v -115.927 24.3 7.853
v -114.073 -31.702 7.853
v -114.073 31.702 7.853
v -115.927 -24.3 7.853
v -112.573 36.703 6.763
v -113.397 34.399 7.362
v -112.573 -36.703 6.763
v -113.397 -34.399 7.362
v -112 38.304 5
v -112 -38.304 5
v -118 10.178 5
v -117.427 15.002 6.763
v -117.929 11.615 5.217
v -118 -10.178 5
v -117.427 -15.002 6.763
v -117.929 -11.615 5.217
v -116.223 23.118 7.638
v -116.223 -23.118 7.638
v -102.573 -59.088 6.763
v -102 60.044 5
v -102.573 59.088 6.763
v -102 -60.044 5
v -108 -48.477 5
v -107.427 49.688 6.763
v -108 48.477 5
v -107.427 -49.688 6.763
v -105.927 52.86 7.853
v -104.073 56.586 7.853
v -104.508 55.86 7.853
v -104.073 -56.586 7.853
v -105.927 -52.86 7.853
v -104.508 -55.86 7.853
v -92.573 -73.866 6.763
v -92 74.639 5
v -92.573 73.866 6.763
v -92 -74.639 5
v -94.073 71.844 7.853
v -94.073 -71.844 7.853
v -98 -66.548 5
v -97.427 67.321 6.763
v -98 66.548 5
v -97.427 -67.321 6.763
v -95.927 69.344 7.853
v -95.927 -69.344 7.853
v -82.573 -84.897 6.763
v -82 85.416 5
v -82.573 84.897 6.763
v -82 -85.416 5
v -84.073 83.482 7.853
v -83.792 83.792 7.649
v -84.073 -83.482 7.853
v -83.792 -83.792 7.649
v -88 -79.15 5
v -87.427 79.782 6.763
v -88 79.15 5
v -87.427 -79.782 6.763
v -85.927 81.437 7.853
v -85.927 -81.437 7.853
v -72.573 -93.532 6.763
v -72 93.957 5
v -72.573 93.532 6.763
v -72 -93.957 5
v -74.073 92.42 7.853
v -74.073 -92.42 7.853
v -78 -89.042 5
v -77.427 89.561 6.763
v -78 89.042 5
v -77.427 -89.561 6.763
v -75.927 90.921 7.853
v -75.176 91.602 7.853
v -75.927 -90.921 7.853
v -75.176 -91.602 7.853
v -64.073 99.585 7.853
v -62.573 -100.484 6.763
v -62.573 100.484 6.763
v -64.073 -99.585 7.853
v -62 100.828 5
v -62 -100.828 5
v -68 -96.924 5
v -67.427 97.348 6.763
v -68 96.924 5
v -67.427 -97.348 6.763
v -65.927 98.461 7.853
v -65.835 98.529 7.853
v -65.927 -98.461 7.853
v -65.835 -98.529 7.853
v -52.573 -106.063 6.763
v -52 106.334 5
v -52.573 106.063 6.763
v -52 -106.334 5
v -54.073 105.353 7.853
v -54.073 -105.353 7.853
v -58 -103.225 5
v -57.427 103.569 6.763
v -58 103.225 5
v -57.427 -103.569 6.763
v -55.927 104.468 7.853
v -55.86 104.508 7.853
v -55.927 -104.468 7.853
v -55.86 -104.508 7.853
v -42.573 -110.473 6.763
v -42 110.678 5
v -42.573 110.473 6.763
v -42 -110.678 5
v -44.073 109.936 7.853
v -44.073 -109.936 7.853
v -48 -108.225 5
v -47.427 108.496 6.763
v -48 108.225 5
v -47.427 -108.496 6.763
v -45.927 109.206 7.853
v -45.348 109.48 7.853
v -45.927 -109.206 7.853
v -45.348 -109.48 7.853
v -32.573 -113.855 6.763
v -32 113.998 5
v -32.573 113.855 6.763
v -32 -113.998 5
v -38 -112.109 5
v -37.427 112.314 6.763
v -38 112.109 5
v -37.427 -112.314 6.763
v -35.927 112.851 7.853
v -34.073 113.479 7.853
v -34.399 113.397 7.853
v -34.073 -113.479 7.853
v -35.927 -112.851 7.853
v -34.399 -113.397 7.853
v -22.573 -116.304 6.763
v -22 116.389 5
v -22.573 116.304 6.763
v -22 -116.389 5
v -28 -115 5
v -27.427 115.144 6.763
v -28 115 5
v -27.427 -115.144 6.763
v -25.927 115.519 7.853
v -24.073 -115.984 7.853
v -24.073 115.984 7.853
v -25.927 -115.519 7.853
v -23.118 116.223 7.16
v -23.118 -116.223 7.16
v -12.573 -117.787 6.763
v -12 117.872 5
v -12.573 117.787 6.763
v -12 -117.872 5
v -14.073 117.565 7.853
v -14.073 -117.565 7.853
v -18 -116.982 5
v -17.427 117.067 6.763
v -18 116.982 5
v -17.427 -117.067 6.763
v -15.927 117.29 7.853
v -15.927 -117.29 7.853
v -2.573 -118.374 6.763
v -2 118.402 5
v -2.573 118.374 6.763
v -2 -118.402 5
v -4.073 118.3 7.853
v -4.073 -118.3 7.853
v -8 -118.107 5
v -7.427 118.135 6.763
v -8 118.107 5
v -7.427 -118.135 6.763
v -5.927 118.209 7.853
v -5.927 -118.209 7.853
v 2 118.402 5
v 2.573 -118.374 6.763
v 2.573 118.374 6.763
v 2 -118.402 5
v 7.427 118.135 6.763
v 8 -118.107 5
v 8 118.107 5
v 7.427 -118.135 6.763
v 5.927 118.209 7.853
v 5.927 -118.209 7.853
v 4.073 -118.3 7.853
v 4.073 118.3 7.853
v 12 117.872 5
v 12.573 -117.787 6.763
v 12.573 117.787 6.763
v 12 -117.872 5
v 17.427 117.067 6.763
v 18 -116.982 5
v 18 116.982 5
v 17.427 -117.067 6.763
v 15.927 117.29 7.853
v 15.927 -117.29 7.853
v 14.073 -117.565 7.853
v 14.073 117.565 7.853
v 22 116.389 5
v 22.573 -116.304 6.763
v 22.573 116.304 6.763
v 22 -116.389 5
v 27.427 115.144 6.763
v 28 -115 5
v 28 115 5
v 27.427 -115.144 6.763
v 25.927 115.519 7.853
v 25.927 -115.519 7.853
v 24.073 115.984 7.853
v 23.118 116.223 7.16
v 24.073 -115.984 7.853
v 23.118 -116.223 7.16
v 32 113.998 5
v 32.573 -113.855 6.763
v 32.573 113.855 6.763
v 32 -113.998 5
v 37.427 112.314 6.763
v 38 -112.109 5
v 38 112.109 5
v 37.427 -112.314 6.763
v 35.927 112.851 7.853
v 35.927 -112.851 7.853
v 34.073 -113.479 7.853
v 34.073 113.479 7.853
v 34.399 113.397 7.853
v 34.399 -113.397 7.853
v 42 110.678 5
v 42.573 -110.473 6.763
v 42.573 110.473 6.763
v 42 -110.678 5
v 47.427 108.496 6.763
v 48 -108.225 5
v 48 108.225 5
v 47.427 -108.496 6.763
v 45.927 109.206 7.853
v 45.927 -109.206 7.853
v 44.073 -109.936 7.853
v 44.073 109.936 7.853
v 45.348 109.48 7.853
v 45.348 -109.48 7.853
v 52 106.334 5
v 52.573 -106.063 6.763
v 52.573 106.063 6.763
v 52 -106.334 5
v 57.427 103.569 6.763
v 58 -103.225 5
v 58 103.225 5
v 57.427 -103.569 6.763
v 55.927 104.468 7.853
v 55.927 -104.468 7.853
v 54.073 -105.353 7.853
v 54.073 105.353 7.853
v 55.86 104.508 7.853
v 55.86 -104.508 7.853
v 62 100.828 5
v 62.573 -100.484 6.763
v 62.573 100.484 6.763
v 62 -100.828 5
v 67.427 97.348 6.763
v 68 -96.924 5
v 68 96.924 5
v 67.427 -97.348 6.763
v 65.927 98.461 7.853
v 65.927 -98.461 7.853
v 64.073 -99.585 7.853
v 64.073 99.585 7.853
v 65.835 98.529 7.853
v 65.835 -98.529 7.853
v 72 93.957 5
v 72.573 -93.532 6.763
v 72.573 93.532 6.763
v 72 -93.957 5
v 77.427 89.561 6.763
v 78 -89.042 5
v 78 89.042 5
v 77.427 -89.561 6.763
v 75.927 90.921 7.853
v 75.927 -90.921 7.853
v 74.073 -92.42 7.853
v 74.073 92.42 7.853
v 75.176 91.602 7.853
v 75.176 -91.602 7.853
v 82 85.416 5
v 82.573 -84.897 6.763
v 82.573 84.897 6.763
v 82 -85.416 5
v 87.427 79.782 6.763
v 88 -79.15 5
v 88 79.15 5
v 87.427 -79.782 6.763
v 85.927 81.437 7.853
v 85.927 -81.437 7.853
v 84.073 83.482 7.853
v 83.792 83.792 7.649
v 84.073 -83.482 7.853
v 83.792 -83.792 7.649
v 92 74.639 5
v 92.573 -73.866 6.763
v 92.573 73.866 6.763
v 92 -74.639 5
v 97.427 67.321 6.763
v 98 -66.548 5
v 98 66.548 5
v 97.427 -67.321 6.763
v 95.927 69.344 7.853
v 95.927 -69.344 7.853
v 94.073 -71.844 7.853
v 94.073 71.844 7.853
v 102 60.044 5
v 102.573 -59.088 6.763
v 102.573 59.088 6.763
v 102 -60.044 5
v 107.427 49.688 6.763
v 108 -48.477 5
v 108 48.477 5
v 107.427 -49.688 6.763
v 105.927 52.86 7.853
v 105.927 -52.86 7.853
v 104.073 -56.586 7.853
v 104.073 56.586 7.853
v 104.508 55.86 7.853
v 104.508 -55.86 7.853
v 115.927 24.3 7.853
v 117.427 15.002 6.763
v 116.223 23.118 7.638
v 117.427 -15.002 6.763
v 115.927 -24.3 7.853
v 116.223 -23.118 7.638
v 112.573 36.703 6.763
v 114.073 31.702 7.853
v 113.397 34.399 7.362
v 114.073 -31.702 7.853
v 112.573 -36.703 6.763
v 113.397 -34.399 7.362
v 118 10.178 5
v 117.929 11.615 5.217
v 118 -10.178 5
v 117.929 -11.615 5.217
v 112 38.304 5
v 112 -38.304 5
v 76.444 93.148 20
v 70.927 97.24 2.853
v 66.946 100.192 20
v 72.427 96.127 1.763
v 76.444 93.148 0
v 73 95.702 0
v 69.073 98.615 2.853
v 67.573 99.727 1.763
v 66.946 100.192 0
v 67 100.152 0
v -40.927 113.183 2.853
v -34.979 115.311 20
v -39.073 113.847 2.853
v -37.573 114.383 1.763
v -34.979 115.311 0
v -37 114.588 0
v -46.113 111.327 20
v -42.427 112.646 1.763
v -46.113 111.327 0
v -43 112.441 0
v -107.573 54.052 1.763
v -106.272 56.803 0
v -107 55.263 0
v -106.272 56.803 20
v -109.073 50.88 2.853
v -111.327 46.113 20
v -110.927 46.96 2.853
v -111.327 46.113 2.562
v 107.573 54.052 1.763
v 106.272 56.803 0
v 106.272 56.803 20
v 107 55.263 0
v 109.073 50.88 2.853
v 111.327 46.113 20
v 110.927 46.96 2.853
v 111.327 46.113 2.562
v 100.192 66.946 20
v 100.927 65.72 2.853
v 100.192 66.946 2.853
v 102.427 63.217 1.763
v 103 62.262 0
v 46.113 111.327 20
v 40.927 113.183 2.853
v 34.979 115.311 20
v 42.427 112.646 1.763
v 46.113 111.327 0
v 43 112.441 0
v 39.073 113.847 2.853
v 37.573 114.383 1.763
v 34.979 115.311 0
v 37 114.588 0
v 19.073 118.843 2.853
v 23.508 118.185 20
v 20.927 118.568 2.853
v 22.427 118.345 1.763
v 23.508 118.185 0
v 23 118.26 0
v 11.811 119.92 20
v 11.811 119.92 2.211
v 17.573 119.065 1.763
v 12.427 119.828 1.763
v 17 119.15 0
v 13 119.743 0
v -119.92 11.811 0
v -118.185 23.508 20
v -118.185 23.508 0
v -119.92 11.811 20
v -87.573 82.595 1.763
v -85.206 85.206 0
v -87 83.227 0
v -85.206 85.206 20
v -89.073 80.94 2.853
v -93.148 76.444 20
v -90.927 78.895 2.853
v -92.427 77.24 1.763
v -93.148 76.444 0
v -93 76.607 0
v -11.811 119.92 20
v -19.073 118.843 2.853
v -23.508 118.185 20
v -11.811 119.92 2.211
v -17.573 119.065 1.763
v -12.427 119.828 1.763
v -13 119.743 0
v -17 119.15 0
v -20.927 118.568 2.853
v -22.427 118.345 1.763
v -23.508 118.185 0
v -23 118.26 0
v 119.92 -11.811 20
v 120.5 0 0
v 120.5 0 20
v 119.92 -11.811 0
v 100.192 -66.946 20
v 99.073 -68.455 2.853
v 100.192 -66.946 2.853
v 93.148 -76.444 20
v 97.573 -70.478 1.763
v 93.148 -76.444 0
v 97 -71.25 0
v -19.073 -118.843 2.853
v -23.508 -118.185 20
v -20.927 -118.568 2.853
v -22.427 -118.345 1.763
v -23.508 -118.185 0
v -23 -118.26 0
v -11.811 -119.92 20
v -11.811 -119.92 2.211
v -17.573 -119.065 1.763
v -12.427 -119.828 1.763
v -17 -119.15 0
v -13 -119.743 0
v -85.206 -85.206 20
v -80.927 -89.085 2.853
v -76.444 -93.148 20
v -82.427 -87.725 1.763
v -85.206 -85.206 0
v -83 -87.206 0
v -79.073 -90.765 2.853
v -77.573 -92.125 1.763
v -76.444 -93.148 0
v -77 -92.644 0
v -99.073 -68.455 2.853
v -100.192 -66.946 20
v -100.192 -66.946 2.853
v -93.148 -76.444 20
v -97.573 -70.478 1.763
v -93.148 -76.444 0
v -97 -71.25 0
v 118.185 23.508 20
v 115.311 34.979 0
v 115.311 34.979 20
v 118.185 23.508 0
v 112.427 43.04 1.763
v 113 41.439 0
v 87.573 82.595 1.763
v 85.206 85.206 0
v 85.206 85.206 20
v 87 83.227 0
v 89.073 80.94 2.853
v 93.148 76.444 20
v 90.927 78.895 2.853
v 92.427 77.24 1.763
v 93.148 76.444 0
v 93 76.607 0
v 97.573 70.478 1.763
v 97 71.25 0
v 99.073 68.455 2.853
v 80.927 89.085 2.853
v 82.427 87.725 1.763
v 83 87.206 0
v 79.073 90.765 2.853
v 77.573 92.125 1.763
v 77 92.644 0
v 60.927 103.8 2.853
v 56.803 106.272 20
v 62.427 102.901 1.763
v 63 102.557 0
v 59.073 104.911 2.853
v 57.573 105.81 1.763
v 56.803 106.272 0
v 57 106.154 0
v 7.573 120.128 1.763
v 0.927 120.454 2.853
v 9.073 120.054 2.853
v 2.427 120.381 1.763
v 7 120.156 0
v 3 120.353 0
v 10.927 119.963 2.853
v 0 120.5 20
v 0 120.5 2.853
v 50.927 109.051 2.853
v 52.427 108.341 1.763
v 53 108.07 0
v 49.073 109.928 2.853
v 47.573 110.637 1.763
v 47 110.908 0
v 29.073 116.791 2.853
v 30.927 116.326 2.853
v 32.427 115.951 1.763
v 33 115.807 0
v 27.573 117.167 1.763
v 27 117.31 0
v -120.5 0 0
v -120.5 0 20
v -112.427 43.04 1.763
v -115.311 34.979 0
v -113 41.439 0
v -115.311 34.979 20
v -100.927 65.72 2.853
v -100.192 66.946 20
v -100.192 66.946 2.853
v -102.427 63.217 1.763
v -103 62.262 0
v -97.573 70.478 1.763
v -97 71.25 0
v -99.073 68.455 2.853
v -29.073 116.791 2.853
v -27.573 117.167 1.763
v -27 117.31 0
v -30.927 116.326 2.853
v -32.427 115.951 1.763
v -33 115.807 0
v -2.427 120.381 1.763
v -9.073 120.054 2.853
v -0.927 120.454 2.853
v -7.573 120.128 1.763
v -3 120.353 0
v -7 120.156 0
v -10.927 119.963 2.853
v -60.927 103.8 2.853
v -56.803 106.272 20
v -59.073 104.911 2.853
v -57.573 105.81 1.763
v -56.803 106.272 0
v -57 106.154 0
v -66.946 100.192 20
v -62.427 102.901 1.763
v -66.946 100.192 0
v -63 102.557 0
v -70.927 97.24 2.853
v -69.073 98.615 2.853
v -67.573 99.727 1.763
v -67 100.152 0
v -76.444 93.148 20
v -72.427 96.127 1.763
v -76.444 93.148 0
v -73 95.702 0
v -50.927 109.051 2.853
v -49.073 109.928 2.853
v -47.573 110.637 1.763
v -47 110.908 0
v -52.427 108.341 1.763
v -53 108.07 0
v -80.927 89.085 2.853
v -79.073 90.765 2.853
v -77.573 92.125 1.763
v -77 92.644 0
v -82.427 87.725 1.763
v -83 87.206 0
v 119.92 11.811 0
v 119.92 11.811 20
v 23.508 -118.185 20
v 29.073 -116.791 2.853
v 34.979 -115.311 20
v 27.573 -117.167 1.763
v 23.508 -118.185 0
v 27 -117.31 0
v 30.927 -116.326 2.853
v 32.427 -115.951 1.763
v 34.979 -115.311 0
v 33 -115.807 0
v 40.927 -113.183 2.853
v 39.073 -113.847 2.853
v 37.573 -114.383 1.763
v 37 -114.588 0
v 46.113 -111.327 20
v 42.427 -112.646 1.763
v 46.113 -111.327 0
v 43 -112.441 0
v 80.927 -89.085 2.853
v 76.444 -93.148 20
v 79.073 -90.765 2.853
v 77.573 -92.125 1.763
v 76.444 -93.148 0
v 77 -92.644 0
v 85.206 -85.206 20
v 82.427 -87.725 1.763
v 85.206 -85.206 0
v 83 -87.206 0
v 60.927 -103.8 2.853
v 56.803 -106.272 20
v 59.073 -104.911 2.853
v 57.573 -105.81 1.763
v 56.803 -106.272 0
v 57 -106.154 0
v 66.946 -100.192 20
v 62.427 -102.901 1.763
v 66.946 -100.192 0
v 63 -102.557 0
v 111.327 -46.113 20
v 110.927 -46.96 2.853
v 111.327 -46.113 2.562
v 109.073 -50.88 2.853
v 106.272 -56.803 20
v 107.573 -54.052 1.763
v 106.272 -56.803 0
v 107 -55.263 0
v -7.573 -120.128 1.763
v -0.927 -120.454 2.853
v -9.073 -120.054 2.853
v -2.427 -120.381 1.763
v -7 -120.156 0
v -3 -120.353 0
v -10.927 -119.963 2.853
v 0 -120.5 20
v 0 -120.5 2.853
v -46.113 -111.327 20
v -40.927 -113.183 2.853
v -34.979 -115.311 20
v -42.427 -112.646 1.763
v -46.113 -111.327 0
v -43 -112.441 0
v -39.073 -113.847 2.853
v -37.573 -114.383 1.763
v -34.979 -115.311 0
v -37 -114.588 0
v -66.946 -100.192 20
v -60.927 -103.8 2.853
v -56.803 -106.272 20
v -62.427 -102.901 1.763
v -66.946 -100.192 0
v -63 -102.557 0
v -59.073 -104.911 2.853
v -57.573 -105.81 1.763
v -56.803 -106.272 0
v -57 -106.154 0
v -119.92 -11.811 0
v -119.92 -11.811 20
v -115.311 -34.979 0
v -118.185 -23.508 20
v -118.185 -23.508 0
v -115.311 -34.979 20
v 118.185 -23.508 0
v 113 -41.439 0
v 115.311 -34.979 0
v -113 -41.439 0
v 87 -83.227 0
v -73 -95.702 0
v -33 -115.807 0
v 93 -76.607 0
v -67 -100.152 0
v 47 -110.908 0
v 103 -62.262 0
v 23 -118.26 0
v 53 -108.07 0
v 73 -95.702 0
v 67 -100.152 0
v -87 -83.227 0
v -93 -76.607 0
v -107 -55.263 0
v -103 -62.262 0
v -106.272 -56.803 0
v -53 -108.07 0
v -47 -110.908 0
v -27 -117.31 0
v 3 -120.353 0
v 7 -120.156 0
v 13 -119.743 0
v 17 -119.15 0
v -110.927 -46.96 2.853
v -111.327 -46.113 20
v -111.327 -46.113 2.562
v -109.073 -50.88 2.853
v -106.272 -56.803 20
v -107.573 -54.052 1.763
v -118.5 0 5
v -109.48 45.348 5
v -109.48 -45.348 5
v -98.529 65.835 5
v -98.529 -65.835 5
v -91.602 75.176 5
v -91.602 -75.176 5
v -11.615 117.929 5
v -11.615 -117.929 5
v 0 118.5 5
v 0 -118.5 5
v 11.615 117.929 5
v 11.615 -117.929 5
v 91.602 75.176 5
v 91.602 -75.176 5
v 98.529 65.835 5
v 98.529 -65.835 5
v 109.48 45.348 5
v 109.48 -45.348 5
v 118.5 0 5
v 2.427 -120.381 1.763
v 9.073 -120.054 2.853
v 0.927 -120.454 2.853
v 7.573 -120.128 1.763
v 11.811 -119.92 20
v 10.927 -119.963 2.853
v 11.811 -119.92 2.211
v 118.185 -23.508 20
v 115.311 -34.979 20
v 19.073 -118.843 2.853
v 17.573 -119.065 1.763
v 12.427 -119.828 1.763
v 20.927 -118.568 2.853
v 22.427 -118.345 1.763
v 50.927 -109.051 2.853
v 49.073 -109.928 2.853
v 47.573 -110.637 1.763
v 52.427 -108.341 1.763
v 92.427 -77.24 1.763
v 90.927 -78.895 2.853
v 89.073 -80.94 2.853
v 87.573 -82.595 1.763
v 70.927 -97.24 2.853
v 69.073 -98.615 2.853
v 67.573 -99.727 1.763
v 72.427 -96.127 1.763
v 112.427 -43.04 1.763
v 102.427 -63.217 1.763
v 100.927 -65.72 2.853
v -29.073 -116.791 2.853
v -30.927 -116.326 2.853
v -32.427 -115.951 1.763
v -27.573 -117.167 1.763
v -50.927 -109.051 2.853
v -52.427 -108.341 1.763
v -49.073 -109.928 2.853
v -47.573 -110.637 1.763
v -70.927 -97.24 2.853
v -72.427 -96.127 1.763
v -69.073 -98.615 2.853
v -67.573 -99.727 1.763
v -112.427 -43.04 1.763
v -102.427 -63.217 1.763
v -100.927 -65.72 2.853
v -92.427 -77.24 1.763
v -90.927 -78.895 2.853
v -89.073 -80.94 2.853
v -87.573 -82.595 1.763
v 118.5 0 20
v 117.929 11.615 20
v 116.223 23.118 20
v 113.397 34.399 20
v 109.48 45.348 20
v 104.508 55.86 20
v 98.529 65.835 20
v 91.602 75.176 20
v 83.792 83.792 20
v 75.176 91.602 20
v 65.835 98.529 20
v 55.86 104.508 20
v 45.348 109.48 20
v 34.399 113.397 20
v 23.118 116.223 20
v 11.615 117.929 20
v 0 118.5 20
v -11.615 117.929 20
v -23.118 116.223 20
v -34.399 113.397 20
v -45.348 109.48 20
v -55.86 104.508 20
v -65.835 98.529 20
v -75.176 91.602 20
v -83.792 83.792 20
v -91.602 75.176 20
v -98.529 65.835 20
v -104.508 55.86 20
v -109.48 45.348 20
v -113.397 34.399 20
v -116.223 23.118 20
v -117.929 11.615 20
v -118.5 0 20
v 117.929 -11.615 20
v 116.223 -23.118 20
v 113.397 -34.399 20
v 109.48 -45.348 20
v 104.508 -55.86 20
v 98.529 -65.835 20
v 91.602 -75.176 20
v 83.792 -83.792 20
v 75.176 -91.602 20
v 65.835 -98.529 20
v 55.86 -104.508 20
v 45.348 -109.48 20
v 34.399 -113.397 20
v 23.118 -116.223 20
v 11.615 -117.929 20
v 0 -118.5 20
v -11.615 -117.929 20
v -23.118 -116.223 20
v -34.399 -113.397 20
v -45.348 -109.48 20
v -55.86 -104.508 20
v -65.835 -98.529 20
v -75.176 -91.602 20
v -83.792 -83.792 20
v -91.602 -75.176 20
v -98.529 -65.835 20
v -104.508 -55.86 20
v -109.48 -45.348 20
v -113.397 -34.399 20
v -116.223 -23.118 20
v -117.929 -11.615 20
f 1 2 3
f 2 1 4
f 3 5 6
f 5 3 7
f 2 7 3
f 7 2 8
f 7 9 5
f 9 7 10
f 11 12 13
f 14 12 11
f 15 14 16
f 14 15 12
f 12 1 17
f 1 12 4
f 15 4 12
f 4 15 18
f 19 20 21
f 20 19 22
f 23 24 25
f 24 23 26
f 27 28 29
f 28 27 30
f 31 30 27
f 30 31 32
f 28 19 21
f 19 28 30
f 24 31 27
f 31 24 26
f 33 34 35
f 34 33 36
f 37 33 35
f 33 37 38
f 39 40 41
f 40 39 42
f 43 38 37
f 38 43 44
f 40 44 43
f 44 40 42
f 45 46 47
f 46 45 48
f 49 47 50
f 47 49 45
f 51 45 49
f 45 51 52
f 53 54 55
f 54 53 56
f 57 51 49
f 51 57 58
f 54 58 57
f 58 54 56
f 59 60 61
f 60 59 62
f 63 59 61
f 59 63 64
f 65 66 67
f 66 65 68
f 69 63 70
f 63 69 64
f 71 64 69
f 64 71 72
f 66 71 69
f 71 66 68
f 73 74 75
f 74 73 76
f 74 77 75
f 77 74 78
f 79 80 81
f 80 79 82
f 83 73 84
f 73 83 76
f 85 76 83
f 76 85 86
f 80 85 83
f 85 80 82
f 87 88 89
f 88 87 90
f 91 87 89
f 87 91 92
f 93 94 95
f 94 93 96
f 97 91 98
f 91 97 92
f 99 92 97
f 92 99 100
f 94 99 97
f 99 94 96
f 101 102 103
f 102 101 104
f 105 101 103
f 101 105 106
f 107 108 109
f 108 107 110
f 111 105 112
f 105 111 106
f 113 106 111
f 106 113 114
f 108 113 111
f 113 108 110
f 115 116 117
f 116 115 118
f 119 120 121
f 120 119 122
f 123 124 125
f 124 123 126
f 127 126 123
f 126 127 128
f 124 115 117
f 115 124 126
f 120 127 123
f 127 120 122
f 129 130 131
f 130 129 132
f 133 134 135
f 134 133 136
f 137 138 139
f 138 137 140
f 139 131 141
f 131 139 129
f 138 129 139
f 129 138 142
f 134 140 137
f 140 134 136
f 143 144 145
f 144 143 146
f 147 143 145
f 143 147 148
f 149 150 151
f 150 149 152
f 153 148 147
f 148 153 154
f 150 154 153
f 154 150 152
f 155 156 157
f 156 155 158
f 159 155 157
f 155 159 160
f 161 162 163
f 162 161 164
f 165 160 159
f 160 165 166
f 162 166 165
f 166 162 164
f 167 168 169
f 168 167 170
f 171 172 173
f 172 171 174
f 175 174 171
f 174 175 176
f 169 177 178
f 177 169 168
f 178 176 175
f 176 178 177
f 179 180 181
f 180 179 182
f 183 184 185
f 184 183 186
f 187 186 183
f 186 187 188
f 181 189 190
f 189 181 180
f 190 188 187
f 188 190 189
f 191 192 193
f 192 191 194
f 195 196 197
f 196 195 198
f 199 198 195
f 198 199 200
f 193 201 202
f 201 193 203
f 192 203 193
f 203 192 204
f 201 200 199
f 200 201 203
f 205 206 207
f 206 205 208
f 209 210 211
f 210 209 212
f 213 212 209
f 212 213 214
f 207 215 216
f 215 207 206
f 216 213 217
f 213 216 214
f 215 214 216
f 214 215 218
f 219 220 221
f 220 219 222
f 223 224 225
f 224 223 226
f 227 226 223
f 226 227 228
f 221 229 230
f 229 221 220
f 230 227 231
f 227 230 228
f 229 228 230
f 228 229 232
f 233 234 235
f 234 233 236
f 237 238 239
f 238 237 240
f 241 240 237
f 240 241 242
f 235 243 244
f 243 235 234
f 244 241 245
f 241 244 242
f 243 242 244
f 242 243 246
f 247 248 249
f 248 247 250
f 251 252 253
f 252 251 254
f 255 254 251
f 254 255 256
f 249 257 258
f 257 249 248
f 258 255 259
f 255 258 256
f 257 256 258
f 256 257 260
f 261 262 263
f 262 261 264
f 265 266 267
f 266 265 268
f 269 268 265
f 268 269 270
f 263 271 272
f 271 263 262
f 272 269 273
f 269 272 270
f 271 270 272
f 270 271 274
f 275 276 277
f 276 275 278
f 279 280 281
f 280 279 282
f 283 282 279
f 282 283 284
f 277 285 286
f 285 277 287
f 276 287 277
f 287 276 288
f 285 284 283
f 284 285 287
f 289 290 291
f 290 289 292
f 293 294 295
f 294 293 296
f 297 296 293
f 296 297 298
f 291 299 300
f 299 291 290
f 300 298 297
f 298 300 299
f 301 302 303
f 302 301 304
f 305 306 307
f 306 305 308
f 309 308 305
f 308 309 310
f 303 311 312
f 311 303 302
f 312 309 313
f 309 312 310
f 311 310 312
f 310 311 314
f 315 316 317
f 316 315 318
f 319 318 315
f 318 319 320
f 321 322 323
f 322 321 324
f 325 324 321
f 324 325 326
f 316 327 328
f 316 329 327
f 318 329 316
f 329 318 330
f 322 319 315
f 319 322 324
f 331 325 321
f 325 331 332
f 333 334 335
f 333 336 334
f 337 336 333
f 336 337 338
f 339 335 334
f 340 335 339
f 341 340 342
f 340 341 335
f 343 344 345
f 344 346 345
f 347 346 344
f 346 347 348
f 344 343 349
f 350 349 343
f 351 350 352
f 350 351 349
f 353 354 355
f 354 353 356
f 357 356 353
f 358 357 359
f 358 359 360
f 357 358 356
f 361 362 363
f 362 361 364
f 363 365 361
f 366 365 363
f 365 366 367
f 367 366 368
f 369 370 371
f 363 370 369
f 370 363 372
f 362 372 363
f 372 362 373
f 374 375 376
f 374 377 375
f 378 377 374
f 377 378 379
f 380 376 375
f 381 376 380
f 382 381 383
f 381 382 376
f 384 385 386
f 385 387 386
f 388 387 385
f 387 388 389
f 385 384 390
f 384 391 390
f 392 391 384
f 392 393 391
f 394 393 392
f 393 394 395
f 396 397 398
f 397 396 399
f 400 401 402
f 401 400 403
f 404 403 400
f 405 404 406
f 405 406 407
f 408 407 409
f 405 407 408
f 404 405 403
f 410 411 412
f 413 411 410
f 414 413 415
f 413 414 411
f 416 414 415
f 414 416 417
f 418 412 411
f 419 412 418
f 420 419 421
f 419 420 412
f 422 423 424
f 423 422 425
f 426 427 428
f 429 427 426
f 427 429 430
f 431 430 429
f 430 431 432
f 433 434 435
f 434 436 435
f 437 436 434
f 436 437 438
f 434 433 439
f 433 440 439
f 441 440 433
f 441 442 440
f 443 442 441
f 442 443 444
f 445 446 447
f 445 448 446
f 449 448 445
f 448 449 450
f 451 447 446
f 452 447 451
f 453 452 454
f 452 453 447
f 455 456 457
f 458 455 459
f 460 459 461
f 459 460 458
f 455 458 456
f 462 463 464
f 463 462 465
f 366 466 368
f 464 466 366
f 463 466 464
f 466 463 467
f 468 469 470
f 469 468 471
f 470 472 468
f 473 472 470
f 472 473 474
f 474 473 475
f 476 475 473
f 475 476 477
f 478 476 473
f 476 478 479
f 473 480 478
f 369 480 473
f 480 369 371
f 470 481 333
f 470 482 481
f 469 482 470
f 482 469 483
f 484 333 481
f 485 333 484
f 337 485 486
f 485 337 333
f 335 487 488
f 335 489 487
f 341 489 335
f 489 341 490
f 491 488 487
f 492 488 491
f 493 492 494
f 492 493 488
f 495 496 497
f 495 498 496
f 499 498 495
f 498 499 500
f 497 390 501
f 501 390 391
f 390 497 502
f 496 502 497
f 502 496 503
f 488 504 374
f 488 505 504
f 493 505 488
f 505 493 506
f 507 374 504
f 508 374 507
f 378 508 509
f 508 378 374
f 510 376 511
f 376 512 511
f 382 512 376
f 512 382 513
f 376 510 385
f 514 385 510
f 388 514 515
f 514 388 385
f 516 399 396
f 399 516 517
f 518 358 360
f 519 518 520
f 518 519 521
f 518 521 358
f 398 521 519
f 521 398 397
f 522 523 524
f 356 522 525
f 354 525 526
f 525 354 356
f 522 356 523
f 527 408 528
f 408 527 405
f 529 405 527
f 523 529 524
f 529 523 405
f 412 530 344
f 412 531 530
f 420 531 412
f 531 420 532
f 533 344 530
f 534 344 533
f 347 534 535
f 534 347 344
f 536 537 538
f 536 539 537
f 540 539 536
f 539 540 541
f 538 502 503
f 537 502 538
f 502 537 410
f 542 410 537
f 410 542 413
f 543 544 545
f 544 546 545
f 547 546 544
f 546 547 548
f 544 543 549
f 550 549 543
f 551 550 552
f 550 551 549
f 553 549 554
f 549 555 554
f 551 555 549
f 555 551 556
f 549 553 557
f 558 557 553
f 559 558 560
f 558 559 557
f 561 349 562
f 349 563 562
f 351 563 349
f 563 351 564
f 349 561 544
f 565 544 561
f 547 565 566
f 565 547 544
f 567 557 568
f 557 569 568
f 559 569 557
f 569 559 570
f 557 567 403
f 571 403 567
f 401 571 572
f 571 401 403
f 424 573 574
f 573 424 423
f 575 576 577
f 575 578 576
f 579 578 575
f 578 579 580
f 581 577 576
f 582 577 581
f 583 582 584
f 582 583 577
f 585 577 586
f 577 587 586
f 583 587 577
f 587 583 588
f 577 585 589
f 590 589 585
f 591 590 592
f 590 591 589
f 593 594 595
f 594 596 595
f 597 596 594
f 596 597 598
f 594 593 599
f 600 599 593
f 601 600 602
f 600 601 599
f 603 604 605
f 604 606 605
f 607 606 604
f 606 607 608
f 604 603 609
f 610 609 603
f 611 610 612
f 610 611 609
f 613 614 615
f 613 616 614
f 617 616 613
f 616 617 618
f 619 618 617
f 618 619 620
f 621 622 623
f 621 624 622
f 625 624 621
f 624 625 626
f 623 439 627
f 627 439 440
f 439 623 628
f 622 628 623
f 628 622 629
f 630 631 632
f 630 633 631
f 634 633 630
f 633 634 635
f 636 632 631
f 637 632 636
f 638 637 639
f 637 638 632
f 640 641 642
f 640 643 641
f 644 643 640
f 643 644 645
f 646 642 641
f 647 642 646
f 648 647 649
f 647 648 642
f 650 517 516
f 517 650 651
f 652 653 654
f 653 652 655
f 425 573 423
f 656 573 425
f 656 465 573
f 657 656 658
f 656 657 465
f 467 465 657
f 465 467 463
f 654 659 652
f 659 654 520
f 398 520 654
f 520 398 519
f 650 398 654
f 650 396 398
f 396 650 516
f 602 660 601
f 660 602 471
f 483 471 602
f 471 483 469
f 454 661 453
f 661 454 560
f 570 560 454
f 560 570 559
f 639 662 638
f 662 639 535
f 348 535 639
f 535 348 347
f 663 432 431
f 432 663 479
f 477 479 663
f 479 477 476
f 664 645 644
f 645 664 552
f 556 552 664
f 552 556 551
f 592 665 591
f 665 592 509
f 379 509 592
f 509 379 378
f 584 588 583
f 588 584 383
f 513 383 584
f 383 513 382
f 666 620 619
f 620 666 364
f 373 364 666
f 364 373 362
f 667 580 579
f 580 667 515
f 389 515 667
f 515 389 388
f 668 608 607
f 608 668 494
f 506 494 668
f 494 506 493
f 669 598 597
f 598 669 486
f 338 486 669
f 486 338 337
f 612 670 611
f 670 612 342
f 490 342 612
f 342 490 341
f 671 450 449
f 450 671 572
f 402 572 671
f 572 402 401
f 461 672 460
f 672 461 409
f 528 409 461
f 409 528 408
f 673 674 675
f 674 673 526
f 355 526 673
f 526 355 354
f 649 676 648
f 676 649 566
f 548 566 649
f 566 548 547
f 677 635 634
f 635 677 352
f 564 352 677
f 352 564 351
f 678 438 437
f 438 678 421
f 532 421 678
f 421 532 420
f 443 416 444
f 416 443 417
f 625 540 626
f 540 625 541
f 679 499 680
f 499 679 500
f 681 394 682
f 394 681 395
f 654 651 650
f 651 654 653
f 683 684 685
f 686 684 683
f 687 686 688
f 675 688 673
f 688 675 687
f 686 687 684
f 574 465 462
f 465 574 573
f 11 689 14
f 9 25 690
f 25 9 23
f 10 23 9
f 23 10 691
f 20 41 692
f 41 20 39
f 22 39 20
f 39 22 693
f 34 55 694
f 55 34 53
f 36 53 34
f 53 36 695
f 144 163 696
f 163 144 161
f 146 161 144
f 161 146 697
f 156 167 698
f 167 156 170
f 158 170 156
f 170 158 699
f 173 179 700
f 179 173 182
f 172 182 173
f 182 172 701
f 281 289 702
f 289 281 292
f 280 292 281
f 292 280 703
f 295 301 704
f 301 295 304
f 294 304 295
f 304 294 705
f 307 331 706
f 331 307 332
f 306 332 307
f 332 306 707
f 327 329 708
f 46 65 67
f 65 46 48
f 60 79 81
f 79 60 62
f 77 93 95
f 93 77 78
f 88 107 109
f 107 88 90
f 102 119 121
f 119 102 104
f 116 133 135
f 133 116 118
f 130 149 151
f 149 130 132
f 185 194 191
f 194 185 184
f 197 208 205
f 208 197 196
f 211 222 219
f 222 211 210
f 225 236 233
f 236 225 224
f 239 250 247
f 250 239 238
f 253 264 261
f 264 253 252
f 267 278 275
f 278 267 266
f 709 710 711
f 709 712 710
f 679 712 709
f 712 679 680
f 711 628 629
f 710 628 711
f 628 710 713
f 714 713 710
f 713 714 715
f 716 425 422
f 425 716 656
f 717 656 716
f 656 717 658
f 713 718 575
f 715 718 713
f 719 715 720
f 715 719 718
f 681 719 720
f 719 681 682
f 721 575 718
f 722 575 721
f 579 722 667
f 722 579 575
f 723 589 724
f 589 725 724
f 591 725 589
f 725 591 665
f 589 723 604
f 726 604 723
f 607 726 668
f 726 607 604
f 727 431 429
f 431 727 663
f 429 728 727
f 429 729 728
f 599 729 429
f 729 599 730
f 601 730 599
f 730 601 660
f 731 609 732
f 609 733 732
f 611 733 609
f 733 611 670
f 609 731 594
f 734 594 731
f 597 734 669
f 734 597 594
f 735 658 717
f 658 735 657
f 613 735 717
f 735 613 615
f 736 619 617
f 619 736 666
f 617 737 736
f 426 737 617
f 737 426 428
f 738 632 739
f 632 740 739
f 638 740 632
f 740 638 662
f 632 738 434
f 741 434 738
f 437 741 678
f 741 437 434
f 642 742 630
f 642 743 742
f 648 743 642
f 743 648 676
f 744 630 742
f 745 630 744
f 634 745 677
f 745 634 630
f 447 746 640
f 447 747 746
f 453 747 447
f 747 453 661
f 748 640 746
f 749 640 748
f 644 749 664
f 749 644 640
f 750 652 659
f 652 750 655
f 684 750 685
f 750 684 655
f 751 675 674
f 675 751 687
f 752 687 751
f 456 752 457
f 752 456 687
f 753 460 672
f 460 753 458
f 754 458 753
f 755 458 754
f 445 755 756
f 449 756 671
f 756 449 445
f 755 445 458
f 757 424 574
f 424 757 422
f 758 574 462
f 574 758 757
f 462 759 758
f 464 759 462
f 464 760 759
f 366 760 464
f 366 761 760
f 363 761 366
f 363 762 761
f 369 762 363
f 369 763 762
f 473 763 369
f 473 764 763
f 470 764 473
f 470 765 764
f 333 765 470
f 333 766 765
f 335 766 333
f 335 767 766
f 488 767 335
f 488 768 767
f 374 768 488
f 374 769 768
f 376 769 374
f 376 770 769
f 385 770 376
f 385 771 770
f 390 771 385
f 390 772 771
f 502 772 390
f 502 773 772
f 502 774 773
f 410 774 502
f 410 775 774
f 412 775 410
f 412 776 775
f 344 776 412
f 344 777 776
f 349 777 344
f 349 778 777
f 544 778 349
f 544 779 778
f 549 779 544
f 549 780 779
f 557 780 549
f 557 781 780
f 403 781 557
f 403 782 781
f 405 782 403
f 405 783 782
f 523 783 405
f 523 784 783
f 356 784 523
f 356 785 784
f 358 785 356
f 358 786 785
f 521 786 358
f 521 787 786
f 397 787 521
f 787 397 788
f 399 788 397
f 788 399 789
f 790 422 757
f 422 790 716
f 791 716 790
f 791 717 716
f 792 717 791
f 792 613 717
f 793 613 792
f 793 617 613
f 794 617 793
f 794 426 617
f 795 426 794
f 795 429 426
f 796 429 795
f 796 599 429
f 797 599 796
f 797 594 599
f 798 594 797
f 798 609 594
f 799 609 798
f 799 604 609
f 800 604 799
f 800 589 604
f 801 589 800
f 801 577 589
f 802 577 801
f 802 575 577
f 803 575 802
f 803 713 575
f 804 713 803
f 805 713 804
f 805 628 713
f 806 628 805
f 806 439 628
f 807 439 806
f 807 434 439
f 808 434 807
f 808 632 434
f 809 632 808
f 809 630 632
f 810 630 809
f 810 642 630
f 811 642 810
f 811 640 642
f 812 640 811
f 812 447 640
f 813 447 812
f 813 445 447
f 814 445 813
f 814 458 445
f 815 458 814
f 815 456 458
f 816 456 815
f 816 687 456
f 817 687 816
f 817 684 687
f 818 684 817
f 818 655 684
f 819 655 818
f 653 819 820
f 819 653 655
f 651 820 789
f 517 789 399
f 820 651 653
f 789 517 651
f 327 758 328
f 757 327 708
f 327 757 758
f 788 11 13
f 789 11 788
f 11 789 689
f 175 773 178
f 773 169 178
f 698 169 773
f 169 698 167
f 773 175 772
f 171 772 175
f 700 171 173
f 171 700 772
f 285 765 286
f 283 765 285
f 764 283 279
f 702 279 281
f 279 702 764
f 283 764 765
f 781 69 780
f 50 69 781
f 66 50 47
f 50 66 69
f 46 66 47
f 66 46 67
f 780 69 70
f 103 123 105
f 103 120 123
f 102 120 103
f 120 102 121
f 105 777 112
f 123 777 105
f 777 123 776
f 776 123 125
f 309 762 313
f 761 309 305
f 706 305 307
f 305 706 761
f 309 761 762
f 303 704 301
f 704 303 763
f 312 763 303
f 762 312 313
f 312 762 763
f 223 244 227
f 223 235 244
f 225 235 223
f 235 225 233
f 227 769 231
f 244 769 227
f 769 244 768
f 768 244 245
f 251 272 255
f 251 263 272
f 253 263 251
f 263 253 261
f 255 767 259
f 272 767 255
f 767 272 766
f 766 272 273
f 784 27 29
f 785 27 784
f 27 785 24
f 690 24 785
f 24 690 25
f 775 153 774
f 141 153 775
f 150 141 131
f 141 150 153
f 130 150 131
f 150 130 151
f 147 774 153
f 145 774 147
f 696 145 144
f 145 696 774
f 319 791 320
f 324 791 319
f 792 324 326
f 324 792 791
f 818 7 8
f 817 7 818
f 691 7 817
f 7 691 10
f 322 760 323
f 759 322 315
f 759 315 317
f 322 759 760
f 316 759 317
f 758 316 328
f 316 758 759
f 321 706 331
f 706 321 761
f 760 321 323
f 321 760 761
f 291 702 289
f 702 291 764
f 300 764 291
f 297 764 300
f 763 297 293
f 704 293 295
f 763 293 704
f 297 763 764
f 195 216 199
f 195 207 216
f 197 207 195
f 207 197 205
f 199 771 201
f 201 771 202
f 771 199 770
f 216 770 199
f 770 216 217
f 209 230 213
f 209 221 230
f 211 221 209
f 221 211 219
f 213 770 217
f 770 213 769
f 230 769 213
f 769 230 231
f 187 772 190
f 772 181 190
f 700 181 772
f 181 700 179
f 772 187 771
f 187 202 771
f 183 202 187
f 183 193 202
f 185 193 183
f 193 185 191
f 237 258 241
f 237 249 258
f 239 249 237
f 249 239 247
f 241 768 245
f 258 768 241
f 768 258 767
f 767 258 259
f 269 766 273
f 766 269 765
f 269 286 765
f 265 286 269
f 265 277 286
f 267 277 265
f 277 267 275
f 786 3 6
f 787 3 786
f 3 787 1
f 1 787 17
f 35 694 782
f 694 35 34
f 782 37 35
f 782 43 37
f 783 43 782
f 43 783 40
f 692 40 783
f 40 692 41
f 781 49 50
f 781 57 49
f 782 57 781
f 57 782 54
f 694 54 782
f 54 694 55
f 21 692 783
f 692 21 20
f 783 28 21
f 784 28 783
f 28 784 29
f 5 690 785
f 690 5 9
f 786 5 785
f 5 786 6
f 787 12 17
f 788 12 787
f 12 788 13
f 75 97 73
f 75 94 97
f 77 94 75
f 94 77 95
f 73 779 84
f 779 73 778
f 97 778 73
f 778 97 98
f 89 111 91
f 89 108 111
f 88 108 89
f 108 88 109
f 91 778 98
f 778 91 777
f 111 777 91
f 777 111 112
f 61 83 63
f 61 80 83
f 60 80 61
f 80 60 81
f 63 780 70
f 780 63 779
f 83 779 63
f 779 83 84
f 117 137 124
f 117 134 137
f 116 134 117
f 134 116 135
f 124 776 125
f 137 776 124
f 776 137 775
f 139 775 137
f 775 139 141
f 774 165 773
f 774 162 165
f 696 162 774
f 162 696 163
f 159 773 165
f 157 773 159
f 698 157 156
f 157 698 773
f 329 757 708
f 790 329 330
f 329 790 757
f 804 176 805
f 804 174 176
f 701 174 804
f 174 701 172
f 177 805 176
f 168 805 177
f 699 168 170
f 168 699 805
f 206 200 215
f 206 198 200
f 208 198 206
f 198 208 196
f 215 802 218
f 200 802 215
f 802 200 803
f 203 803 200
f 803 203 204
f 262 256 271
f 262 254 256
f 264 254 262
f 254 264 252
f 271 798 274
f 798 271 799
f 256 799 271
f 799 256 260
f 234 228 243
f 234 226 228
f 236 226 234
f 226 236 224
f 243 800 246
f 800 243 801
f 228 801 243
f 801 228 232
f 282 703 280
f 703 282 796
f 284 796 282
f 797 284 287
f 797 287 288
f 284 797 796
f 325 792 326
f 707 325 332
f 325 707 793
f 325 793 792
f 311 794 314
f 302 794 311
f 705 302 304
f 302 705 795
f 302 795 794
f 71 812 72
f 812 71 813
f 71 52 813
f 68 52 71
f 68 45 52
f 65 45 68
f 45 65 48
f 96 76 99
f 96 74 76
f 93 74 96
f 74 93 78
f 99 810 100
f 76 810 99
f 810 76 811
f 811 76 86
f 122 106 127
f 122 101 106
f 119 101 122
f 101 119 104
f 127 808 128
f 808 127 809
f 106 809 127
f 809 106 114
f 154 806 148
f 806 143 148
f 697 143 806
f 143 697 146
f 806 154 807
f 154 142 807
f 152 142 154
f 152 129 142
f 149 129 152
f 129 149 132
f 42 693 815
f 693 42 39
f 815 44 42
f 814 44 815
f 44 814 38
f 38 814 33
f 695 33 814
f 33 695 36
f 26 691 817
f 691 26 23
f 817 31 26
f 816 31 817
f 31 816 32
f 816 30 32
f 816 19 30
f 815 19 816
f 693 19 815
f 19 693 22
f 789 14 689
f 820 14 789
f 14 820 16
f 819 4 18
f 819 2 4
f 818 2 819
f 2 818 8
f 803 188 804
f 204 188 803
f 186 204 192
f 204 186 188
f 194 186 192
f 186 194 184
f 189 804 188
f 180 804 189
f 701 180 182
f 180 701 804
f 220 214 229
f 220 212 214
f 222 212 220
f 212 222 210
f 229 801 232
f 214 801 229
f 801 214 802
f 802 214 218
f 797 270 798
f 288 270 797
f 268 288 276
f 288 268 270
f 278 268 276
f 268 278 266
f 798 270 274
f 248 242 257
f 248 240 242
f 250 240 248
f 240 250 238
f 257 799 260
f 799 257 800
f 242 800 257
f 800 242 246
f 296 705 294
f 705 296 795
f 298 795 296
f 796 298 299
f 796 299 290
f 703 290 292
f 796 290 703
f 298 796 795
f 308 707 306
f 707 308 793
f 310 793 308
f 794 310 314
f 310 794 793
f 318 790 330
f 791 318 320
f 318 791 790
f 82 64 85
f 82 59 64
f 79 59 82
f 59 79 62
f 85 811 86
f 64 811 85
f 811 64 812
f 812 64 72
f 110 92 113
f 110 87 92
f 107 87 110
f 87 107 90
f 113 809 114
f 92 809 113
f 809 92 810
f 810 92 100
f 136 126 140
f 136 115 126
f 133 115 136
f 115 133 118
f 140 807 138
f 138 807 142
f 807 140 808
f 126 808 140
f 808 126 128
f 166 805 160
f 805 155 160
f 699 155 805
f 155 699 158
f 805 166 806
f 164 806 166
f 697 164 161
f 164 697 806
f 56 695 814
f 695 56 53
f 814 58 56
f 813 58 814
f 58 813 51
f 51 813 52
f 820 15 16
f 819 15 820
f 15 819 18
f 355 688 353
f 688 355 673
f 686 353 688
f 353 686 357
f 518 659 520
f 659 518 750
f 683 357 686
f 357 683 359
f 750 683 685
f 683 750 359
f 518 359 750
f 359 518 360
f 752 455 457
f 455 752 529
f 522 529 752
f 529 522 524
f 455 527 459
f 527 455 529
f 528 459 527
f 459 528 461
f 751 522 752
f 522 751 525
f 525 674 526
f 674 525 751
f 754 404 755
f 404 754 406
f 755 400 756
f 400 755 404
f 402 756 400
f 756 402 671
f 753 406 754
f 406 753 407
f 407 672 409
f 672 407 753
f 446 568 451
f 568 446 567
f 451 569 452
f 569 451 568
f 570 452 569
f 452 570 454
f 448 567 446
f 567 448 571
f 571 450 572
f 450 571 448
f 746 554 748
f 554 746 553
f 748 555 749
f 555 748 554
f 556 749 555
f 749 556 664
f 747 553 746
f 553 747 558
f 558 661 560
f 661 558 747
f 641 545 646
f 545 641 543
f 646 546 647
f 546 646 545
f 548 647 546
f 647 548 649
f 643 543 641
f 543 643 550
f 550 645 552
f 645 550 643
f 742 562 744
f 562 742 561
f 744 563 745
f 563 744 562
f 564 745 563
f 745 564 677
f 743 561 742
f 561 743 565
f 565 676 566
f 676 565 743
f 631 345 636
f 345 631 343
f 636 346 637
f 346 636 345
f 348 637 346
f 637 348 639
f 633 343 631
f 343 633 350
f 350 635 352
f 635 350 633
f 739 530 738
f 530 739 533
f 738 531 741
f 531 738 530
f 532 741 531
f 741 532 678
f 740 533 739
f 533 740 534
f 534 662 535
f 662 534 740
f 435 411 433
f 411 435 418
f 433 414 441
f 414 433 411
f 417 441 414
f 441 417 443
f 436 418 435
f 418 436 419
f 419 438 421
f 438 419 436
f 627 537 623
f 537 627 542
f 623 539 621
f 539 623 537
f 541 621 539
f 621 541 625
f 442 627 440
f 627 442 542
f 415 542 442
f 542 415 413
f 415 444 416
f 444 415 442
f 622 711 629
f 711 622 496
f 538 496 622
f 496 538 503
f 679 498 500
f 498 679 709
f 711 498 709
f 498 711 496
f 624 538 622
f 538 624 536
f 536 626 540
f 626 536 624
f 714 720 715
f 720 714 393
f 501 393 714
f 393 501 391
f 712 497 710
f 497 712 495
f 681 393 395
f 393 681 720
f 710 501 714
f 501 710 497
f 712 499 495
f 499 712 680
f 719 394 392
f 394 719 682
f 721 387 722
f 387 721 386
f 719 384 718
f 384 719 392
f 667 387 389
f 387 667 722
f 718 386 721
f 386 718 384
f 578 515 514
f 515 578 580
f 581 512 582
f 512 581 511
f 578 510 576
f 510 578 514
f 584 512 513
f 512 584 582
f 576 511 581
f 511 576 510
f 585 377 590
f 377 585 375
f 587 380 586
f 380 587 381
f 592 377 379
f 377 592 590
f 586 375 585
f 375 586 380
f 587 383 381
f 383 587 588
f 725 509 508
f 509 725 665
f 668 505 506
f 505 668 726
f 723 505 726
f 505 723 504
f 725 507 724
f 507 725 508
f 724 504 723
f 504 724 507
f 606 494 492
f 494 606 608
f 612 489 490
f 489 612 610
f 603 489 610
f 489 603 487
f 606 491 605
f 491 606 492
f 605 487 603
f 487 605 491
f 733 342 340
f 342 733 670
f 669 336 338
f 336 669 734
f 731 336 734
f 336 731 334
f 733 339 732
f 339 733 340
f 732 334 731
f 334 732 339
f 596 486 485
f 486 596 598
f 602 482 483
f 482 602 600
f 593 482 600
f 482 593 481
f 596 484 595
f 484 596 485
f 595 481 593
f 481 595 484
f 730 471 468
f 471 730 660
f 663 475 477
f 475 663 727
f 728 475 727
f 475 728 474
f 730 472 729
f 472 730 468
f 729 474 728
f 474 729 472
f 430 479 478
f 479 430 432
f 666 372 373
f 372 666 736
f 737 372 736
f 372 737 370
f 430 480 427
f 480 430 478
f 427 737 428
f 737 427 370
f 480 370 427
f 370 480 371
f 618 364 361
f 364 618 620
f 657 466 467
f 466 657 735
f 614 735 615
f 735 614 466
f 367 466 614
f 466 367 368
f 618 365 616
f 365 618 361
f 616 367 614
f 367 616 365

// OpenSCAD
difference(){
	union() {
		union() {
			cylinder($fn = 64, h = 5, r = 120.5000000000);
			difference() {
				union() {
					translate(v = [-125, -120.5000000000, 5]) {
						rotate(a = -90, v = [1, 0, 0]) {
							cylinder(h = 241, r = 3);
						}
					}
					translate(v = [-115, -120.5000000000, 5]) {
						rotate(a = -90, v = [1, 0, 0]) {
							cylinder(h = 241, r = 3);
						}
					}
					translate(v = [-105, -120.5000000000, 5]) {
						rotate(a = -90, v = [1, 0, 0]) {
							cylinder(h = 241, r = 3);
						}
					}
					translate(v = [-95, -120.5000000000, 5]) {
						rotate(a = -90, v = [1, 0, 0]) {
							cylinder(h = 241, r = 3);
						}
					}
					translate(v = [-85, -120.5000000000, 5]) {
						rotate(a = -90, v = [1, 0, 0]) {
							cylinder(h = 241, r = 3);
						}
					}
					translate(v = [-75, -120.5000000000, 5]) {
						rotate(a = -90, v = [1, 0, 0]) {
							cylinder(h = 241, r = 3);
						}
					}
					translate(v = [-65, -120.5000000000, 5]) {
						rotate(a = -90, v = [1, 0, 0]) {
							cylinder(h = 241, r = 3);
						}
					}
					translate(v = [-55, -120.5000000000, 5]) {
						rotate(a = -90, v = [1, 0, 0]) {
							cylinder(h = 241, r = 3);
						}
					}
					translate(v = [-45, -120.5000000000, 5]) {
						rotate(a = -90, v = [1, 0, 0]) {
							cylinder(h = 241, r = 3);
						}
					}
					translate(v = [-35, -120.5000000000, 5]) {
						rotate(a = -90, v = [1, 0, 0]) {
							cylinder(h = 241, r = 3);
						}
					}
					translate(v = [-25, -120.5000000000, 5]) {
						rotate(a = -90, v = [1, 0, 0]) {
							cylinder(h = 241, r = 3);
						}
					}
					translate(v = [-15, -120.5000000000, 5]) {
						rotate(a = -90, v = [1, 0, 0]) {
							cylinder(h = 241, r = 3);
						}
					}
					translate(v = [-5, -120.5000000000, 5]) {
						rotate(a = -90, v = [1, 0, 0]) {
							cylinder(h = 241, r = 3);
						}
					}
					translate(v = [5, -120.5000000000, 5]) {
						rotate(a = -90, v = [1, 0, 0]) {
							cylinder(h = 241, r = 3);
						}
					}
					translate(v = [15, -120.5000000000, 5]) {
						rotate(a = -90, v = [1, 0, 0]) {
							cylinder(h = 241, r = 3);
						}
					}
					translate(v = [25, -120.5000000000, 5]) {
						rotate(a = -90, v = [1, 0, 0]) {
							cylinder(h = 241, r = 3);
						}
					}
					translate(v = [35, -120.5000000000, 5]) {
						rotate(a = -90, v = [1, 0, 0]) {
							cylinder(h = 241, r = 3);
						}
					}
					translate(v = [45, -120.5000000000, 5]) {
						rotate(a = -90, v = [1, 0, 0]) {
							cylinder(h = 241, r = 3);
						}
					}
					translate(v = [55, -120.5000000000, 5]) {
						rotate(a = -90, v = [1, 0, 0]) {
							cylinder(h = 241, r = 3);
						}
					}
					translate(v = [65, -120.5000000000, 5]) {
						rotate(a = -90, v = [1, 0, 0]) {
							cylinder(h = 241, r = 3);
						}
					}
					translate(v = [75, -120.5000000000, 5]) {
						rotate(a = -90, v = [1, 0, 0]) {
							cylinder(h = 241, r = 3);
						}
					}
					translate(v = [85, -120.5000000000, 5]) {
						rotate(a = -90, v = [1, 0, 0]) {
							cylinder(h = 241, r = 3);
						}
					}
					translate(v = [95, -120.5000000000, 5]) {
						rotate(a = -90, v = [1, 0, 0]) {
							cylinder(h = 241, r = 3);
						}
					}
					translate(v = [105, -120.5000000000, 5]) {
						rotate(a = -90, v = [1, 0, 0]) {
							cylinder(h = 241, r = 3);
						}
					}
					translate(v = [115, -120.5000000000, 5]) {
						rotate(a = -90, v = [1, 0, 0]) {
							cylinder(h = 241, r = 3);
						}
					}
				}
				difference() {
					cylinder($fn = 64, h = 20, r = 241);
					cylinder($fn = 64, h = 20, r = 119.5000000000);
				}
			}
		}
		difference() {
			cylinder($fn = 64, h = 20, r = 120.5000000000);
			translate(v = [0, 0, -1]) {
				cylinder($fn = 64, h = 22, r = 118.5000000000);
			}
		}
	}
	/* Holes Below*/
	union(){
		union(){
			translate(v = [-110, -120.5000000000, 0]) {
				rotate(a = -90, v = [1, 0, 0]) {
					cylinder(h = 241, r = 3);
				}
			}
			translate(v = [-100, -120.5000000000, 0]) {
				rotate(a = -90, v = [1, 0, 0]) {
					cylinder(h = 241, r = 3);
				}
			}
			translate(v = [-90, -120.5000000000, 0]) {
				rotate(a = -90, v = [1, 0, 0]) {
					cylinder(h = 241, r = 3);
				}
			}
			translate(v = [-80, -120.5000000000, 0]) {
				rotate(a = -90, v = [1, 0, 0]) {
					cylinder(h = 241, r = 3);
				}
			}
			translate(v = [-70, -120.5000000000, 0]) {
				rotate(a = -90, v = [1, 0, 0]) {
					cylinder(h = 241, r = 3);
				}
			}
			translate(v = [-60, -120.5000000000, 0]) {
				rotate(a = -90, v = [1, 0, 0]) {
					cylinder(h = 241, r = 3);
				}
			}
			translate(v = [-50, -120.5000000000, 0]) {
				rotate(a = -90, v = [1, 0, 0]) {
					cylinder(h = 241, r = 3);
				}
			}
			translate(v = [-40, -120.5000000000, 0]) {
				rotate(a = -90, v = [1, 0, 0]) {
					cylinder(h = 241, r = 3);
				}
			}
			translate(v = [-30, -120.5000000000, 0]) {
				rotate(a = -90, v = [1, 0, 0]) {
					cylinder(h = 241, r = 3);
				}
			}
			translate(v = [-20, -120.5000000000, 0]) {
				rotate(a = -90, v = [1, 0, 0]) {
					cylinder(h = 241, r = 3);
				}
			}
			translate(v = [-10, -120.5000000000, 0]) {
				rotate(a = -90, v = [1, 0, 0]) {
					cylinder(h = 241, r = 3);
				}
			}
			translate(v = [0, -120.5000000000, 0]) {
				rotate(a = -90, v = [1, 0, 0]) {
					cylinder(h = 241, r = 3);
				}
			}
			translate(v = [10, -120.5000000000, 0]) {
				rotate(a = -90, v = [1, 0, 0]) {
					cylinder(h = 241, r = 3);
				}
			}
			translate(v = [20, -120.5000000000, 0]) {
				rotate(a = -90, v = [1, 0, 0]) {
					cylinder(h = 241, r = 3);
				}
			}
			translate(v = [30, -120.5000000000, 0]) {
				rotate(a = -90, v = [1, 0, 0]) {
					cylinder(h = 241, r = 3);
				}
			}
			translate(v = [40, -120.5000000000, 0]) {
				rotate(a = -90, v = [1, 0, 0]) {
					cylinder(h = 241, r = 3);
				}
			}
			translate(v = [50, -120.5000000000, 0]) {
				rotate(a = -90, v = [1, 0, 0]) {
					cylinder(h = 241, r = 3);
				}
			}
			translate(v = [60, -120.5000000000, 0]) {
				rotate(a = -90, v = [1, 0, 0]) {
					cylinder(h = 241, r = 3);
				}
			}
			translate(v = [70, -120.5000000000, 0]) {
				rotate(a = -90, v = [1, 0, 0]) {
					cylinder(h = 241, r = 3);
				}
			}
			translate(v = [80, -120.5000000000, 0]) {
				rotate(a = -90, v = [1, 0, 0]) {
					cylinder(h = 241, r = 3);
				}
			}
			translate(v = [90, -120.5000000000, 0]) {
				rotate(a = -90, v = [1, 0, 0]) {
					cylinder(h = 241, r = 3);
				}
			}
			translate(v = [100, -120.5000000000, 0]) {
				rotate(a = -90, v = [1, 0, 0]) {
					cylinder(h = 241, r = 3);
				}
			}
			translate(v = [110, -120.5000000000, 0]) {
				rotate(a = -90, v = [1, 0, 0]) {
					cylinder(h = 241, r = 3);
				}
			}
		}
	} /* End Holes */ 
}
